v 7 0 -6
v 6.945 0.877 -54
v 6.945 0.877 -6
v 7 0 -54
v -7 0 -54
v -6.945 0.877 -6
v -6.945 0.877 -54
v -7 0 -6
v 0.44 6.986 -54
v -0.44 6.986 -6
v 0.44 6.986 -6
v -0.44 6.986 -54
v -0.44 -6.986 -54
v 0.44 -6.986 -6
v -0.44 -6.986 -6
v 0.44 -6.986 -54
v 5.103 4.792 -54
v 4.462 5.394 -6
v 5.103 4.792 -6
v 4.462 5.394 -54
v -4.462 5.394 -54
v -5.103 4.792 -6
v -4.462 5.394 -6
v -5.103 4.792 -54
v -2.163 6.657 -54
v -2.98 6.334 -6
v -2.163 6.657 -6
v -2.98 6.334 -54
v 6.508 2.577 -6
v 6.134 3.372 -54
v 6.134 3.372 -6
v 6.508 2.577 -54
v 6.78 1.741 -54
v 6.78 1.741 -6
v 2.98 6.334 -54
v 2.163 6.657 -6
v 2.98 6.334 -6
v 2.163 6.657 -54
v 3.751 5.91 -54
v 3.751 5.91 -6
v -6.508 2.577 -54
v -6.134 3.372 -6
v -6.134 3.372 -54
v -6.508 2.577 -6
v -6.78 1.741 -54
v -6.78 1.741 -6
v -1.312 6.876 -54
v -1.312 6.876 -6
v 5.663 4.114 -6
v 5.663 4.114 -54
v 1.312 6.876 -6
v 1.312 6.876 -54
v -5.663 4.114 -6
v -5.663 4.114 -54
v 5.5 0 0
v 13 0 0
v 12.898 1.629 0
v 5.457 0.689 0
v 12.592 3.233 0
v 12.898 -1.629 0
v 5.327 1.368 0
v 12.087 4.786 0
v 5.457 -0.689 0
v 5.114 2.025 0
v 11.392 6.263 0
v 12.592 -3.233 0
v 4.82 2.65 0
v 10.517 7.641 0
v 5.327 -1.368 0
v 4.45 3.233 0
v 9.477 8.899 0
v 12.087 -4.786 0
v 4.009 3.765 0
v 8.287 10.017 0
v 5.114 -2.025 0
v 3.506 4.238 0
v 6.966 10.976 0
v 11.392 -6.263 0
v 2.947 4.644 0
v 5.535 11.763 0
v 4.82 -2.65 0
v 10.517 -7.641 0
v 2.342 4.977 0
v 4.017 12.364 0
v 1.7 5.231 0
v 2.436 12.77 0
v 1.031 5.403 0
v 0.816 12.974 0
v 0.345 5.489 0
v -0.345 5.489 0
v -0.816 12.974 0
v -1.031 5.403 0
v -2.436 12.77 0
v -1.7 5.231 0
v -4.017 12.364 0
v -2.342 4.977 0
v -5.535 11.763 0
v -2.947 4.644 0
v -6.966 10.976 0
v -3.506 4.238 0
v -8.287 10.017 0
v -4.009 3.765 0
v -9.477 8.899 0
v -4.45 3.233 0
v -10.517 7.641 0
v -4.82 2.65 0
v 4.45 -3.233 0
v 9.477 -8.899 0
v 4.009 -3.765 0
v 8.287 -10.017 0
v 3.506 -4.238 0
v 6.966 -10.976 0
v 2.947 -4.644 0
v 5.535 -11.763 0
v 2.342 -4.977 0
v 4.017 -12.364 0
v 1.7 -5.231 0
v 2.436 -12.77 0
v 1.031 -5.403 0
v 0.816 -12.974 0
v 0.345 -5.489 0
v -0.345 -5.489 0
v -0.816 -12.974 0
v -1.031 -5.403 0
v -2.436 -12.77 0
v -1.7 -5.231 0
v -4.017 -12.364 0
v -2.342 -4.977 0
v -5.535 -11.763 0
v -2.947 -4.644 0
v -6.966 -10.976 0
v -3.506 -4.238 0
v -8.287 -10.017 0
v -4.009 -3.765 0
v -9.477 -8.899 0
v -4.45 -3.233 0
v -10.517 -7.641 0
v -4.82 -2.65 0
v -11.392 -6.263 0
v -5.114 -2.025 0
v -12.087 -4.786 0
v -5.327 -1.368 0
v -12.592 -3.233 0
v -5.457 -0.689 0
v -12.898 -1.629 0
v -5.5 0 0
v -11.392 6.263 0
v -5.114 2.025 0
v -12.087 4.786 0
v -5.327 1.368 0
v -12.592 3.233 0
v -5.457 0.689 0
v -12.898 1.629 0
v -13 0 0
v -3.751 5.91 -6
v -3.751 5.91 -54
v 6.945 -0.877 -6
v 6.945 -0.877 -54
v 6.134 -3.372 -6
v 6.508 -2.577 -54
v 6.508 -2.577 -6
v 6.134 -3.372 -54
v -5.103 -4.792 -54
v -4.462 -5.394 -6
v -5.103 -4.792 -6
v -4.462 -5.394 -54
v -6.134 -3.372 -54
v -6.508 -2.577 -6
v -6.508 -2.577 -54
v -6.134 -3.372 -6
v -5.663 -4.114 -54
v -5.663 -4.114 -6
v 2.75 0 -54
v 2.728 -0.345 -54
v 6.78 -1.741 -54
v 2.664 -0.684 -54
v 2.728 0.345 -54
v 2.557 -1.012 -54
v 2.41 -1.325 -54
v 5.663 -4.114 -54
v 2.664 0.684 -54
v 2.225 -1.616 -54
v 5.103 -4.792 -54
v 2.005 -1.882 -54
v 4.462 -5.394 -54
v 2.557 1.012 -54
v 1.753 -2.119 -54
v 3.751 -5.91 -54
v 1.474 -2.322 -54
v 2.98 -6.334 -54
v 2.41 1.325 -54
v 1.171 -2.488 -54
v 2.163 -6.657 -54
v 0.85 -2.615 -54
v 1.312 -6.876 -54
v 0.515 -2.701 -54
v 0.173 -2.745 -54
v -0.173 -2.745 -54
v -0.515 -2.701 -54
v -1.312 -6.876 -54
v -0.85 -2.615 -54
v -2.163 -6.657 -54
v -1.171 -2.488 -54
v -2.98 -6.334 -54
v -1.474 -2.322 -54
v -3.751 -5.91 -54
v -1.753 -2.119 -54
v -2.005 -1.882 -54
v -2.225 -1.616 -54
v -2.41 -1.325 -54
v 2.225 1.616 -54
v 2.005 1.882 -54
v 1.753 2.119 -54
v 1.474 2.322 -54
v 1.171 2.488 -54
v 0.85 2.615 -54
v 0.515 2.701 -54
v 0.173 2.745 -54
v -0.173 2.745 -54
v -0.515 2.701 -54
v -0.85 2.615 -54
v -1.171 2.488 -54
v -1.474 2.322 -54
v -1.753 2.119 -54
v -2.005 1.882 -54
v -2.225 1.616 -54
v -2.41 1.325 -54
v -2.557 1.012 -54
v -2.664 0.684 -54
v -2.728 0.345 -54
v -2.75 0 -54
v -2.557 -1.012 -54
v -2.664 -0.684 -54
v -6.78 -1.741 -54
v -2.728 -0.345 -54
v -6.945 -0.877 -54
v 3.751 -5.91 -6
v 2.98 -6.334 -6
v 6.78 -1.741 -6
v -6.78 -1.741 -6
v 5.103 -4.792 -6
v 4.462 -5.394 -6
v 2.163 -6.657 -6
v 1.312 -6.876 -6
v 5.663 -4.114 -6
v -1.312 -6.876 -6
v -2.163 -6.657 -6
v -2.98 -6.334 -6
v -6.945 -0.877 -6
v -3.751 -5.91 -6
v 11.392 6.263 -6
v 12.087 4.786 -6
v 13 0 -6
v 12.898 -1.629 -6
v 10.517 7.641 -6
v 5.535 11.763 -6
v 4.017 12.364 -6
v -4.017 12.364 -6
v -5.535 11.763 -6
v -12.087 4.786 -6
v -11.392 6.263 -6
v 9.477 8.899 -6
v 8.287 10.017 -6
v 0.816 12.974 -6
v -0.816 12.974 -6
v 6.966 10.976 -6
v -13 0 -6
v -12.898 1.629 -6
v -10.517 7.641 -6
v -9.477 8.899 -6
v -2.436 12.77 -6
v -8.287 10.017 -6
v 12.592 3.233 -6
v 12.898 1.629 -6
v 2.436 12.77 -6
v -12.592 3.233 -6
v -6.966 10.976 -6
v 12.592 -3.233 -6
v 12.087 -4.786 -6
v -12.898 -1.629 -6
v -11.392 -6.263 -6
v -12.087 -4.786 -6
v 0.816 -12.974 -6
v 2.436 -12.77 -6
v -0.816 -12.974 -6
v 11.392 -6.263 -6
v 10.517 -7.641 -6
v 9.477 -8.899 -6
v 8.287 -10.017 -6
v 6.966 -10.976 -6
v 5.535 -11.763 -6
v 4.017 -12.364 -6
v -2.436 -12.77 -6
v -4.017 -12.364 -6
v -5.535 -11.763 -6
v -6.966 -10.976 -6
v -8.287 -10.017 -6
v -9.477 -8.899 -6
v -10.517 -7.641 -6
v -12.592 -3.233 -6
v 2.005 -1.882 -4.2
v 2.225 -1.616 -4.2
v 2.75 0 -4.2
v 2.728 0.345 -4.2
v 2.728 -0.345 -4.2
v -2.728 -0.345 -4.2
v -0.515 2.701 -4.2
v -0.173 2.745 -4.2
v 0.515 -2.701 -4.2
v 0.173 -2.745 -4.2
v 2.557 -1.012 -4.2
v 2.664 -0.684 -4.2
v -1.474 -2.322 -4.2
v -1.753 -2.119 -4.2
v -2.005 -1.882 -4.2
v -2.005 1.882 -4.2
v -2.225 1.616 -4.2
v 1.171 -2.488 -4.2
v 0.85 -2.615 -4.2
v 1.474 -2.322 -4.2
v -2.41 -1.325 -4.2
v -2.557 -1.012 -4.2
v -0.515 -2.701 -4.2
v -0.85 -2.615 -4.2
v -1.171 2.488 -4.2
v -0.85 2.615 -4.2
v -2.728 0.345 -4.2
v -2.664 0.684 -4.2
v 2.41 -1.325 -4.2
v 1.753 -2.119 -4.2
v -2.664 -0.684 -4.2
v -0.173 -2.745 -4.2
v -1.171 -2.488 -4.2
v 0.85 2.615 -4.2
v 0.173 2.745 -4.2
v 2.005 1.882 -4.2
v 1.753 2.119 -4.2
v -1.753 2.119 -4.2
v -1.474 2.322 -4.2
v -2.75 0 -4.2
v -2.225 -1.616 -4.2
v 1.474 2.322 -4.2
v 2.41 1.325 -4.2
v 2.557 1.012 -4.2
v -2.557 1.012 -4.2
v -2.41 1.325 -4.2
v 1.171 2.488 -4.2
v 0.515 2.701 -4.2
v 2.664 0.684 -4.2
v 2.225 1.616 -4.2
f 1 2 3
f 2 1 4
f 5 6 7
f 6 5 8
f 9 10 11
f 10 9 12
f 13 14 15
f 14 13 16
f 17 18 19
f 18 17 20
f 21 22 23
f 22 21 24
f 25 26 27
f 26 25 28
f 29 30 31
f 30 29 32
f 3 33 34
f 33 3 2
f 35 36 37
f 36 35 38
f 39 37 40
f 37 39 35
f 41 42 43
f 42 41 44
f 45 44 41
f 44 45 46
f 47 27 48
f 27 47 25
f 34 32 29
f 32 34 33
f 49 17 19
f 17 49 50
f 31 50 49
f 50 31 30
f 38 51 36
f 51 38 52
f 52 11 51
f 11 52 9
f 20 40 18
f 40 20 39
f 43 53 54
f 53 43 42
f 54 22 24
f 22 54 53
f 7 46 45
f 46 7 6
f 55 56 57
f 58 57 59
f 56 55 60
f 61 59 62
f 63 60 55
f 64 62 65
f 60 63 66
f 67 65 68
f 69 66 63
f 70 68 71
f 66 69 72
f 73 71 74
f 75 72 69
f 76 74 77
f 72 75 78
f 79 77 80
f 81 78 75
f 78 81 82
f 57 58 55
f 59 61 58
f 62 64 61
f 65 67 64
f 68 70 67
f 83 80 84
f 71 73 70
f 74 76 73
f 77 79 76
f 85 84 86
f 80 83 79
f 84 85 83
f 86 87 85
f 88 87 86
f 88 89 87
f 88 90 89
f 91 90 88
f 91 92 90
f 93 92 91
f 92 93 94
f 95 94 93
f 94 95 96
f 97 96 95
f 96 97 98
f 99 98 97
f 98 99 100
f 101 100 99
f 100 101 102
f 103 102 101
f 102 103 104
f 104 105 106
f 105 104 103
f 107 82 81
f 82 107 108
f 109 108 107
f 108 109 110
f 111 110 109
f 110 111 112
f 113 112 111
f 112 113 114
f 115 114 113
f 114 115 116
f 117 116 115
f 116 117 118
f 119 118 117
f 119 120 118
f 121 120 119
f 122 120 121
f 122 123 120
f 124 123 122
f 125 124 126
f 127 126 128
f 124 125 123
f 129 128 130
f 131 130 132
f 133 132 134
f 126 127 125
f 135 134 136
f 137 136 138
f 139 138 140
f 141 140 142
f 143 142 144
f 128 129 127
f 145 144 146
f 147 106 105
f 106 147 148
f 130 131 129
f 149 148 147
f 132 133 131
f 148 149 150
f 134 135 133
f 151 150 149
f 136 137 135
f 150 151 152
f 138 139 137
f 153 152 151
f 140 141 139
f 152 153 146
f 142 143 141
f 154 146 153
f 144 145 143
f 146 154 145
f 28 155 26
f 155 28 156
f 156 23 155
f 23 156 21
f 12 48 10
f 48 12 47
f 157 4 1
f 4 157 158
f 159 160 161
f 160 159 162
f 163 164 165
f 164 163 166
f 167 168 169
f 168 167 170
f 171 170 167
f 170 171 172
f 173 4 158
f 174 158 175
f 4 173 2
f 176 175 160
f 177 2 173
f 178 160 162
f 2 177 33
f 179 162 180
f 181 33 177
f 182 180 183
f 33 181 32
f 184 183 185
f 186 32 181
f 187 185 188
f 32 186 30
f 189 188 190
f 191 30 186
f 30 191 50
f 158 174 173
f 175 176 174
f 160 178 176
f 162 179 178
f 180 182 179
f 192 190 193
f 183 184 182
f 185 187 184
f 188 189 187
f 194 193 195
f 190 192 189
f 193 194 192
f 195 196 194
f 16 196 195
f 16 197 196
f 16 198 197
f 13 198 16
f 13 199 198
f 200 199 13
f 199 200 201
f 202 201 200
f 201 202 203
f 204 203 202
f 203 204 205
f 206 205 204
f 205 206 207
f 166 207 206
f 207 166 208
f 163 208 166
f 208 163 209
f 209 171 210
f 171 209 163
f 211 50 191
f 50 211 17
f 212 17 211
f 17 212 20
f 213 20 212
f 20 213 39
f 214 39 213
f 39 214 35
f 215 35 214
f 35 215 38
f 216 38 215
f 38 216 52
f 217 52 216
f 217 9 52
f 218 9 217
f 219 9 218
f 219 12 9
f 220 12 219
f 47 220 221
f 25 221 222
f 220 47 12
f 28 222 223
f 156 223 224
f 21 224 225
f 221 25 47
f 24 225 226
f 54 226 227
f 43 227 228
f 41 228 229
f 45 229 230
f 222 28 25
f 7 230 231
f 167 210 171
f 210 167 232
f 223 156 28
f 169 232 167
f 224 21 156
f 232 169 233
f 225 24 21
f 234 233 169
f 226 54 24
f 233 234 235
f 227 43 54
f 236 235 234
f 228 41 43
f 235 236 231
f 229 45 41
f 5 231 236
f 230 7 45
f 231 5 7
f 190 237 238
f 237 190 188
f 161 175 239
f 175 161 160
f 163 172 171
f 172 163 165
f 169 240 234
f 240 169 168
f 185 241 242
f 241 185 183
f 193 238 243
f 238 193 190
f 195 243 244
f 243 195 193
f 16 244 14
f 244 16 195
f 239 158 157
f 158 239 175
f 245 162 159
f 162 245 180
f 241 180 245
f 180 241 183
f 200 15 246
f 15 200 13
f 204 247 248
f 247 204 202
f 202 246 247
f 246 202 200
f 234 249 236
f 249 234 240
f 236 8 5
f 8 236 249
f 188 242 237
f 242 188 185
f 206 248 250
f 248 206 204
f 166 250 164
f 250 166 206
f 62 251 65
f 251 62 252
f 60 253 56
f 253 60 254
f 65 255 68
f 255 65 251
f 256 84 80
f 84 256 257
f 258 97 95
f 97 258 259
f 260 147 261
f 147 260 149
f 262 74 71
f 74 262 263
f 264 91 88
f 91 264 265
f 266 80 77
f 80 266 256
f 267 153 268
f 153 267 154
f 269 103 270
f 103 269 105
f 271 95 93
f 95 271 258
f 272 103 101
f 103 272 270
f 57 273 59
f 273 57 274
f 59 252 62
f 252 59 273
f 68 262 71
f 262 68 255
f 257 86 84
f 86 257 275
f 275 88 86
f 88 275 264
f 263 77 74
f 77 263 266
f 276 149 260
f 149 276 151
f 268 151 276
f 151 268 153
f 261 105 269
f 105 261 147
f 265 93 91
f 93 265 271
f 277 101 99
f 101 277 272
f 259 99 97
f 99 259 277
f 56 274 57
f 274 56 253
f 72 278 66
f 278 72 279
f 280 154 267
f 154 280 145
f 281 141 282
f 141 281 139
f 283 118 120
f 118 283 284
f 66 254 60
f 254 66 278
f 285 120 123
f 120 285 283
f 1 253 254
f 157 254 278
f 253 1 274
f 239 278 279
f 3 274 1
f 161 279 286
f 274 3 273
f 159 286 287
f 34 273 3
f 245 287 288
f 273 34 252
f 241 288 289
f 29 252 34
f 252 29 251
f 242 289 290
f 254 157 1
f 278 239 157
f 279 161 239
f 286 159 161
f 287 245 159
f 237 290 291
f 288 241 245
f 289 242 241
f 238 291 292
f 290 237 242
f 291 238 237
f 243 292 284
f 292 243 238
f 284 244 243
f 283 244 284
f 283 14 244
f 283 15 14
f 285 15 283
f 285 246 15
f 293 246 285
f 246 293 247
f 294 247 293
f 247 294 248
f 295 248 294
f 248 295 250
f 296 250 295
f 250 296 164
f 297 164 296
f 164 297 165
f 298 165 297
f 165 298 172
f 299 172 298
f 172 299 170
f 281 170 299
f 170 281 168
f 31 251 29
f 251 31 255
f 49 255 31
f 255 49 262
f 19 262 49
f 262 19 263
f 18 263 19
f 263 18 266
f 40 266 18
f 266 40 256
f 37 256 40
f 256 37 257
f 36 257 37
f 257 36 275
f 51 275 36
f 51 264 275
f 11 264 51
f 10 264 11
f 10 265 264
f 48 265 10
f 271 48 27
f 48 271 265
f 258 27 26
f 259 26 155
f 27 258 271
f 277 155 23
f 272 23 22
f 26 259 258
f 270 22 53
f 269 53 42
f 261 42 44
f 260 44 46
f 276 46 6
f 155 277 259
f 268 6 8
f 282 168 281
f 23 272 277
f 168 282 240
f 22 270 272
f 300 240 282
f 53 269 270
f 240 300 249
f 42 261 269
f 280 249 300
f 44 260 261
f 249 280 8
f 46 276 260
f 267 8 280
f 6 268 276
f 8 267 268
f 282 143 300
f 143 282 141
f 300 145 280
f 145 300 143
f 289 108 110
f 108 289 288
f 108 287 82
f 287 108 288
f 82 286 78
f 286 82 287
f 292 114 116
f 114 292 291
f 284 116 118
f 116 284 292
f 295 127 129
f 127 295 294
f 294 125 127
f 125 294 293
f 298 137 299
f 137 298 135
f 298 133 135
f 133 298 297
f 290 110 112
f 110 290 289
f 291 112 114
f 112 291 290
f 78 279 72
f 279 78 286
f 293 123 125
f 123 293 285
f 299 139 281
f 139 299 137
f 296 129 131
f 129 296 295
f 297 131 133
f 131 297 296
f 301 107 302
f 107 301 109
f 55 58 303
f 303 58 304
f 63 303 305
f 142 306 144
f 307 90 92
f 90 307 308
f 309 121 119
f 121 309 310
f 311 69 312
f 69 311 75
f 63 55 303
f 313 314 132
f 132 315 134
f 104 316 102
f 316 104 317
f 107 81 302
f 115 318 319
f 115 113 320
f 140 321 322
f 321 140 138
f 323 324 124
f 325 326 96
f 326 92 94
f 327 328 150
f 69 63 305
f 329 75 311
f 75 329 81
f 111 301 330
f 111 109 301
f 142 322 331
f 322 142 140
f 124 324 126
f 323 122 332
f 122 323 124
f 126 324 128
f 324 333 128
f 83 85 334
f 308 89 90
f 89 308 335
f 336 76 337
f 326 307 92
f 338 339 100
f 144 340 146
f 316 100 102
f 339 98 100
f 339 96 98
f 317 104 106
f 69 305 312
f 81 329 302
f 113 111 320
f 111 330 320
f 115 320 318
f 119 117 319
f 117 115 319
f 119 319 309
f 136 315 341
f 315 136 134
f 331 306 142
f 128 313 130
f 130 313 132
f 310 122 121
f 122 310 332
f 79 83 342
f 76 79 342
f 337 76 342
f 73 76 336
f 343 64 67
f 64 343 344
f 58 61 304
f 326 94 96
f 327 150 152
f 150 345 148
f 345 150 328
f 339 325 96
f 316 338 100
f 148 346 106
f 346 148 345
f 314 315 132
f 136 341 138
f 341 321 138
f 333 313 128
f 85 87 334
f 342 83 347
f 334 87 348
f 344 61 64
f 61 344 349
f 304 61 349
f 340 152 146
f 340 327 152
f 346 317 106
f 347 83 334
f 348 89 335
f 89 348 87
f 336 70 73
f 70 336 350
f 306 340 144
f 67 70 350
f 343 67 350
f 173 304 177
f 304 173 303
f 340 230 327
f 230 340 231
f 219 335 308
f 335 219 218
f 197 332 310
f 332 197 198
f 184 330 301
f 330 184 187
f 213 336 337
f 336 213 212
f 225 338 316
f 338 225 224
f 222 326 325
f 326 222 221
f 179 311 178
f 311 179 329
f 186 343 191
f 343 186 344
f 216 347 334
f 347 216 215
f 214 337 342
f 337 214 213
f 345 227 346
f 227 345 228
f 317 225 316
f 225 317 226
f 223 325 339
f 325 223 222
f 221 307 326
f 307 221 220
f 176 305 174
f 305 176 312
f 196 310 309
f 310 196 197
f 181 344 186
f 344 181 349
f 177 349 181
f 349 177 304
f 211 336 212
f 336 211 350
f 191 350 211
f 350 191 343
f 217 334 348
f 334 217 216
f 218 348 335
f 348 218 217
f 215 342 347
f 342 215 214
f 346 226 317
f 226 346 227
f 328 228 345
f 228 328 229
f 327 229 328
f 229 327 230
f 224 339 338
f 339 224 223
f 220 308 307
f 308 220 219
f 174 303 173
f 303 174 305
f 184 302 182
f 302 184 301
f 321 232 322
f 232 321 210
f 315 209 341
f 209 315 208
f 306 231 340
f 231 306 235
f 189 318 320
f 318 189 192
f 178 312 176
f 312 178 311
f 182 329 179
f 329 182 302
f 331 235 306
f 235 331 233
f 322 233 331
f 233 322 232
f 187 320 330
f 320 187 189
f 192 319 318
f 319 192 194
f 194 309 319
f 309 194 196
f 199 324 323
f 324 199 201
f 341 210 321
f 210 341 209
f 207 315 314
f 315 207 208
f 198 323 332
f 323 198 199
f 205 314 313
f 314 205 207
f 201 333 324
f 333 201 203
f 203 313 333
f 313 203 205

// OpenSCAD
$fn = 50;


difference() {
	union() {
		translate(v = [0, 0, -54.0000000000]) {
			cylinder(h = 54, r = 7.0000000000);
		}
		translate(v = [0, 0, -6.0000000000]) {
			cylinder(h = 6, r = 13.0000000000);
		}
	}
	union() {
		translate(v = [0, 0, 0]) {
			rotate(a = [0, 0, 0]) {
				difference() {
					union() {
						#translate(v = [0, 0, -54.0000000000]) {
							cylinder(h = 54, r = 2.2500000000);
						}
						#translate(v = [0, 0, -4.2000000000]) {
							cylinder(h = 4.2000000000, r = 7.0000000000, r1 = 2.7500000000, r2 = 5.5000000000);
						}
						#translate(v = [0, 0, -54.0000000000]) {
							cylinder(h = 54, r = 2.7500000000);
						}
						#translate(v = [0, 0, -54.0000000000]) {
							cylinder(h = 54, r = 2.2500000000);
						}
					}
					union();
				}
			}
		}
	}
}
